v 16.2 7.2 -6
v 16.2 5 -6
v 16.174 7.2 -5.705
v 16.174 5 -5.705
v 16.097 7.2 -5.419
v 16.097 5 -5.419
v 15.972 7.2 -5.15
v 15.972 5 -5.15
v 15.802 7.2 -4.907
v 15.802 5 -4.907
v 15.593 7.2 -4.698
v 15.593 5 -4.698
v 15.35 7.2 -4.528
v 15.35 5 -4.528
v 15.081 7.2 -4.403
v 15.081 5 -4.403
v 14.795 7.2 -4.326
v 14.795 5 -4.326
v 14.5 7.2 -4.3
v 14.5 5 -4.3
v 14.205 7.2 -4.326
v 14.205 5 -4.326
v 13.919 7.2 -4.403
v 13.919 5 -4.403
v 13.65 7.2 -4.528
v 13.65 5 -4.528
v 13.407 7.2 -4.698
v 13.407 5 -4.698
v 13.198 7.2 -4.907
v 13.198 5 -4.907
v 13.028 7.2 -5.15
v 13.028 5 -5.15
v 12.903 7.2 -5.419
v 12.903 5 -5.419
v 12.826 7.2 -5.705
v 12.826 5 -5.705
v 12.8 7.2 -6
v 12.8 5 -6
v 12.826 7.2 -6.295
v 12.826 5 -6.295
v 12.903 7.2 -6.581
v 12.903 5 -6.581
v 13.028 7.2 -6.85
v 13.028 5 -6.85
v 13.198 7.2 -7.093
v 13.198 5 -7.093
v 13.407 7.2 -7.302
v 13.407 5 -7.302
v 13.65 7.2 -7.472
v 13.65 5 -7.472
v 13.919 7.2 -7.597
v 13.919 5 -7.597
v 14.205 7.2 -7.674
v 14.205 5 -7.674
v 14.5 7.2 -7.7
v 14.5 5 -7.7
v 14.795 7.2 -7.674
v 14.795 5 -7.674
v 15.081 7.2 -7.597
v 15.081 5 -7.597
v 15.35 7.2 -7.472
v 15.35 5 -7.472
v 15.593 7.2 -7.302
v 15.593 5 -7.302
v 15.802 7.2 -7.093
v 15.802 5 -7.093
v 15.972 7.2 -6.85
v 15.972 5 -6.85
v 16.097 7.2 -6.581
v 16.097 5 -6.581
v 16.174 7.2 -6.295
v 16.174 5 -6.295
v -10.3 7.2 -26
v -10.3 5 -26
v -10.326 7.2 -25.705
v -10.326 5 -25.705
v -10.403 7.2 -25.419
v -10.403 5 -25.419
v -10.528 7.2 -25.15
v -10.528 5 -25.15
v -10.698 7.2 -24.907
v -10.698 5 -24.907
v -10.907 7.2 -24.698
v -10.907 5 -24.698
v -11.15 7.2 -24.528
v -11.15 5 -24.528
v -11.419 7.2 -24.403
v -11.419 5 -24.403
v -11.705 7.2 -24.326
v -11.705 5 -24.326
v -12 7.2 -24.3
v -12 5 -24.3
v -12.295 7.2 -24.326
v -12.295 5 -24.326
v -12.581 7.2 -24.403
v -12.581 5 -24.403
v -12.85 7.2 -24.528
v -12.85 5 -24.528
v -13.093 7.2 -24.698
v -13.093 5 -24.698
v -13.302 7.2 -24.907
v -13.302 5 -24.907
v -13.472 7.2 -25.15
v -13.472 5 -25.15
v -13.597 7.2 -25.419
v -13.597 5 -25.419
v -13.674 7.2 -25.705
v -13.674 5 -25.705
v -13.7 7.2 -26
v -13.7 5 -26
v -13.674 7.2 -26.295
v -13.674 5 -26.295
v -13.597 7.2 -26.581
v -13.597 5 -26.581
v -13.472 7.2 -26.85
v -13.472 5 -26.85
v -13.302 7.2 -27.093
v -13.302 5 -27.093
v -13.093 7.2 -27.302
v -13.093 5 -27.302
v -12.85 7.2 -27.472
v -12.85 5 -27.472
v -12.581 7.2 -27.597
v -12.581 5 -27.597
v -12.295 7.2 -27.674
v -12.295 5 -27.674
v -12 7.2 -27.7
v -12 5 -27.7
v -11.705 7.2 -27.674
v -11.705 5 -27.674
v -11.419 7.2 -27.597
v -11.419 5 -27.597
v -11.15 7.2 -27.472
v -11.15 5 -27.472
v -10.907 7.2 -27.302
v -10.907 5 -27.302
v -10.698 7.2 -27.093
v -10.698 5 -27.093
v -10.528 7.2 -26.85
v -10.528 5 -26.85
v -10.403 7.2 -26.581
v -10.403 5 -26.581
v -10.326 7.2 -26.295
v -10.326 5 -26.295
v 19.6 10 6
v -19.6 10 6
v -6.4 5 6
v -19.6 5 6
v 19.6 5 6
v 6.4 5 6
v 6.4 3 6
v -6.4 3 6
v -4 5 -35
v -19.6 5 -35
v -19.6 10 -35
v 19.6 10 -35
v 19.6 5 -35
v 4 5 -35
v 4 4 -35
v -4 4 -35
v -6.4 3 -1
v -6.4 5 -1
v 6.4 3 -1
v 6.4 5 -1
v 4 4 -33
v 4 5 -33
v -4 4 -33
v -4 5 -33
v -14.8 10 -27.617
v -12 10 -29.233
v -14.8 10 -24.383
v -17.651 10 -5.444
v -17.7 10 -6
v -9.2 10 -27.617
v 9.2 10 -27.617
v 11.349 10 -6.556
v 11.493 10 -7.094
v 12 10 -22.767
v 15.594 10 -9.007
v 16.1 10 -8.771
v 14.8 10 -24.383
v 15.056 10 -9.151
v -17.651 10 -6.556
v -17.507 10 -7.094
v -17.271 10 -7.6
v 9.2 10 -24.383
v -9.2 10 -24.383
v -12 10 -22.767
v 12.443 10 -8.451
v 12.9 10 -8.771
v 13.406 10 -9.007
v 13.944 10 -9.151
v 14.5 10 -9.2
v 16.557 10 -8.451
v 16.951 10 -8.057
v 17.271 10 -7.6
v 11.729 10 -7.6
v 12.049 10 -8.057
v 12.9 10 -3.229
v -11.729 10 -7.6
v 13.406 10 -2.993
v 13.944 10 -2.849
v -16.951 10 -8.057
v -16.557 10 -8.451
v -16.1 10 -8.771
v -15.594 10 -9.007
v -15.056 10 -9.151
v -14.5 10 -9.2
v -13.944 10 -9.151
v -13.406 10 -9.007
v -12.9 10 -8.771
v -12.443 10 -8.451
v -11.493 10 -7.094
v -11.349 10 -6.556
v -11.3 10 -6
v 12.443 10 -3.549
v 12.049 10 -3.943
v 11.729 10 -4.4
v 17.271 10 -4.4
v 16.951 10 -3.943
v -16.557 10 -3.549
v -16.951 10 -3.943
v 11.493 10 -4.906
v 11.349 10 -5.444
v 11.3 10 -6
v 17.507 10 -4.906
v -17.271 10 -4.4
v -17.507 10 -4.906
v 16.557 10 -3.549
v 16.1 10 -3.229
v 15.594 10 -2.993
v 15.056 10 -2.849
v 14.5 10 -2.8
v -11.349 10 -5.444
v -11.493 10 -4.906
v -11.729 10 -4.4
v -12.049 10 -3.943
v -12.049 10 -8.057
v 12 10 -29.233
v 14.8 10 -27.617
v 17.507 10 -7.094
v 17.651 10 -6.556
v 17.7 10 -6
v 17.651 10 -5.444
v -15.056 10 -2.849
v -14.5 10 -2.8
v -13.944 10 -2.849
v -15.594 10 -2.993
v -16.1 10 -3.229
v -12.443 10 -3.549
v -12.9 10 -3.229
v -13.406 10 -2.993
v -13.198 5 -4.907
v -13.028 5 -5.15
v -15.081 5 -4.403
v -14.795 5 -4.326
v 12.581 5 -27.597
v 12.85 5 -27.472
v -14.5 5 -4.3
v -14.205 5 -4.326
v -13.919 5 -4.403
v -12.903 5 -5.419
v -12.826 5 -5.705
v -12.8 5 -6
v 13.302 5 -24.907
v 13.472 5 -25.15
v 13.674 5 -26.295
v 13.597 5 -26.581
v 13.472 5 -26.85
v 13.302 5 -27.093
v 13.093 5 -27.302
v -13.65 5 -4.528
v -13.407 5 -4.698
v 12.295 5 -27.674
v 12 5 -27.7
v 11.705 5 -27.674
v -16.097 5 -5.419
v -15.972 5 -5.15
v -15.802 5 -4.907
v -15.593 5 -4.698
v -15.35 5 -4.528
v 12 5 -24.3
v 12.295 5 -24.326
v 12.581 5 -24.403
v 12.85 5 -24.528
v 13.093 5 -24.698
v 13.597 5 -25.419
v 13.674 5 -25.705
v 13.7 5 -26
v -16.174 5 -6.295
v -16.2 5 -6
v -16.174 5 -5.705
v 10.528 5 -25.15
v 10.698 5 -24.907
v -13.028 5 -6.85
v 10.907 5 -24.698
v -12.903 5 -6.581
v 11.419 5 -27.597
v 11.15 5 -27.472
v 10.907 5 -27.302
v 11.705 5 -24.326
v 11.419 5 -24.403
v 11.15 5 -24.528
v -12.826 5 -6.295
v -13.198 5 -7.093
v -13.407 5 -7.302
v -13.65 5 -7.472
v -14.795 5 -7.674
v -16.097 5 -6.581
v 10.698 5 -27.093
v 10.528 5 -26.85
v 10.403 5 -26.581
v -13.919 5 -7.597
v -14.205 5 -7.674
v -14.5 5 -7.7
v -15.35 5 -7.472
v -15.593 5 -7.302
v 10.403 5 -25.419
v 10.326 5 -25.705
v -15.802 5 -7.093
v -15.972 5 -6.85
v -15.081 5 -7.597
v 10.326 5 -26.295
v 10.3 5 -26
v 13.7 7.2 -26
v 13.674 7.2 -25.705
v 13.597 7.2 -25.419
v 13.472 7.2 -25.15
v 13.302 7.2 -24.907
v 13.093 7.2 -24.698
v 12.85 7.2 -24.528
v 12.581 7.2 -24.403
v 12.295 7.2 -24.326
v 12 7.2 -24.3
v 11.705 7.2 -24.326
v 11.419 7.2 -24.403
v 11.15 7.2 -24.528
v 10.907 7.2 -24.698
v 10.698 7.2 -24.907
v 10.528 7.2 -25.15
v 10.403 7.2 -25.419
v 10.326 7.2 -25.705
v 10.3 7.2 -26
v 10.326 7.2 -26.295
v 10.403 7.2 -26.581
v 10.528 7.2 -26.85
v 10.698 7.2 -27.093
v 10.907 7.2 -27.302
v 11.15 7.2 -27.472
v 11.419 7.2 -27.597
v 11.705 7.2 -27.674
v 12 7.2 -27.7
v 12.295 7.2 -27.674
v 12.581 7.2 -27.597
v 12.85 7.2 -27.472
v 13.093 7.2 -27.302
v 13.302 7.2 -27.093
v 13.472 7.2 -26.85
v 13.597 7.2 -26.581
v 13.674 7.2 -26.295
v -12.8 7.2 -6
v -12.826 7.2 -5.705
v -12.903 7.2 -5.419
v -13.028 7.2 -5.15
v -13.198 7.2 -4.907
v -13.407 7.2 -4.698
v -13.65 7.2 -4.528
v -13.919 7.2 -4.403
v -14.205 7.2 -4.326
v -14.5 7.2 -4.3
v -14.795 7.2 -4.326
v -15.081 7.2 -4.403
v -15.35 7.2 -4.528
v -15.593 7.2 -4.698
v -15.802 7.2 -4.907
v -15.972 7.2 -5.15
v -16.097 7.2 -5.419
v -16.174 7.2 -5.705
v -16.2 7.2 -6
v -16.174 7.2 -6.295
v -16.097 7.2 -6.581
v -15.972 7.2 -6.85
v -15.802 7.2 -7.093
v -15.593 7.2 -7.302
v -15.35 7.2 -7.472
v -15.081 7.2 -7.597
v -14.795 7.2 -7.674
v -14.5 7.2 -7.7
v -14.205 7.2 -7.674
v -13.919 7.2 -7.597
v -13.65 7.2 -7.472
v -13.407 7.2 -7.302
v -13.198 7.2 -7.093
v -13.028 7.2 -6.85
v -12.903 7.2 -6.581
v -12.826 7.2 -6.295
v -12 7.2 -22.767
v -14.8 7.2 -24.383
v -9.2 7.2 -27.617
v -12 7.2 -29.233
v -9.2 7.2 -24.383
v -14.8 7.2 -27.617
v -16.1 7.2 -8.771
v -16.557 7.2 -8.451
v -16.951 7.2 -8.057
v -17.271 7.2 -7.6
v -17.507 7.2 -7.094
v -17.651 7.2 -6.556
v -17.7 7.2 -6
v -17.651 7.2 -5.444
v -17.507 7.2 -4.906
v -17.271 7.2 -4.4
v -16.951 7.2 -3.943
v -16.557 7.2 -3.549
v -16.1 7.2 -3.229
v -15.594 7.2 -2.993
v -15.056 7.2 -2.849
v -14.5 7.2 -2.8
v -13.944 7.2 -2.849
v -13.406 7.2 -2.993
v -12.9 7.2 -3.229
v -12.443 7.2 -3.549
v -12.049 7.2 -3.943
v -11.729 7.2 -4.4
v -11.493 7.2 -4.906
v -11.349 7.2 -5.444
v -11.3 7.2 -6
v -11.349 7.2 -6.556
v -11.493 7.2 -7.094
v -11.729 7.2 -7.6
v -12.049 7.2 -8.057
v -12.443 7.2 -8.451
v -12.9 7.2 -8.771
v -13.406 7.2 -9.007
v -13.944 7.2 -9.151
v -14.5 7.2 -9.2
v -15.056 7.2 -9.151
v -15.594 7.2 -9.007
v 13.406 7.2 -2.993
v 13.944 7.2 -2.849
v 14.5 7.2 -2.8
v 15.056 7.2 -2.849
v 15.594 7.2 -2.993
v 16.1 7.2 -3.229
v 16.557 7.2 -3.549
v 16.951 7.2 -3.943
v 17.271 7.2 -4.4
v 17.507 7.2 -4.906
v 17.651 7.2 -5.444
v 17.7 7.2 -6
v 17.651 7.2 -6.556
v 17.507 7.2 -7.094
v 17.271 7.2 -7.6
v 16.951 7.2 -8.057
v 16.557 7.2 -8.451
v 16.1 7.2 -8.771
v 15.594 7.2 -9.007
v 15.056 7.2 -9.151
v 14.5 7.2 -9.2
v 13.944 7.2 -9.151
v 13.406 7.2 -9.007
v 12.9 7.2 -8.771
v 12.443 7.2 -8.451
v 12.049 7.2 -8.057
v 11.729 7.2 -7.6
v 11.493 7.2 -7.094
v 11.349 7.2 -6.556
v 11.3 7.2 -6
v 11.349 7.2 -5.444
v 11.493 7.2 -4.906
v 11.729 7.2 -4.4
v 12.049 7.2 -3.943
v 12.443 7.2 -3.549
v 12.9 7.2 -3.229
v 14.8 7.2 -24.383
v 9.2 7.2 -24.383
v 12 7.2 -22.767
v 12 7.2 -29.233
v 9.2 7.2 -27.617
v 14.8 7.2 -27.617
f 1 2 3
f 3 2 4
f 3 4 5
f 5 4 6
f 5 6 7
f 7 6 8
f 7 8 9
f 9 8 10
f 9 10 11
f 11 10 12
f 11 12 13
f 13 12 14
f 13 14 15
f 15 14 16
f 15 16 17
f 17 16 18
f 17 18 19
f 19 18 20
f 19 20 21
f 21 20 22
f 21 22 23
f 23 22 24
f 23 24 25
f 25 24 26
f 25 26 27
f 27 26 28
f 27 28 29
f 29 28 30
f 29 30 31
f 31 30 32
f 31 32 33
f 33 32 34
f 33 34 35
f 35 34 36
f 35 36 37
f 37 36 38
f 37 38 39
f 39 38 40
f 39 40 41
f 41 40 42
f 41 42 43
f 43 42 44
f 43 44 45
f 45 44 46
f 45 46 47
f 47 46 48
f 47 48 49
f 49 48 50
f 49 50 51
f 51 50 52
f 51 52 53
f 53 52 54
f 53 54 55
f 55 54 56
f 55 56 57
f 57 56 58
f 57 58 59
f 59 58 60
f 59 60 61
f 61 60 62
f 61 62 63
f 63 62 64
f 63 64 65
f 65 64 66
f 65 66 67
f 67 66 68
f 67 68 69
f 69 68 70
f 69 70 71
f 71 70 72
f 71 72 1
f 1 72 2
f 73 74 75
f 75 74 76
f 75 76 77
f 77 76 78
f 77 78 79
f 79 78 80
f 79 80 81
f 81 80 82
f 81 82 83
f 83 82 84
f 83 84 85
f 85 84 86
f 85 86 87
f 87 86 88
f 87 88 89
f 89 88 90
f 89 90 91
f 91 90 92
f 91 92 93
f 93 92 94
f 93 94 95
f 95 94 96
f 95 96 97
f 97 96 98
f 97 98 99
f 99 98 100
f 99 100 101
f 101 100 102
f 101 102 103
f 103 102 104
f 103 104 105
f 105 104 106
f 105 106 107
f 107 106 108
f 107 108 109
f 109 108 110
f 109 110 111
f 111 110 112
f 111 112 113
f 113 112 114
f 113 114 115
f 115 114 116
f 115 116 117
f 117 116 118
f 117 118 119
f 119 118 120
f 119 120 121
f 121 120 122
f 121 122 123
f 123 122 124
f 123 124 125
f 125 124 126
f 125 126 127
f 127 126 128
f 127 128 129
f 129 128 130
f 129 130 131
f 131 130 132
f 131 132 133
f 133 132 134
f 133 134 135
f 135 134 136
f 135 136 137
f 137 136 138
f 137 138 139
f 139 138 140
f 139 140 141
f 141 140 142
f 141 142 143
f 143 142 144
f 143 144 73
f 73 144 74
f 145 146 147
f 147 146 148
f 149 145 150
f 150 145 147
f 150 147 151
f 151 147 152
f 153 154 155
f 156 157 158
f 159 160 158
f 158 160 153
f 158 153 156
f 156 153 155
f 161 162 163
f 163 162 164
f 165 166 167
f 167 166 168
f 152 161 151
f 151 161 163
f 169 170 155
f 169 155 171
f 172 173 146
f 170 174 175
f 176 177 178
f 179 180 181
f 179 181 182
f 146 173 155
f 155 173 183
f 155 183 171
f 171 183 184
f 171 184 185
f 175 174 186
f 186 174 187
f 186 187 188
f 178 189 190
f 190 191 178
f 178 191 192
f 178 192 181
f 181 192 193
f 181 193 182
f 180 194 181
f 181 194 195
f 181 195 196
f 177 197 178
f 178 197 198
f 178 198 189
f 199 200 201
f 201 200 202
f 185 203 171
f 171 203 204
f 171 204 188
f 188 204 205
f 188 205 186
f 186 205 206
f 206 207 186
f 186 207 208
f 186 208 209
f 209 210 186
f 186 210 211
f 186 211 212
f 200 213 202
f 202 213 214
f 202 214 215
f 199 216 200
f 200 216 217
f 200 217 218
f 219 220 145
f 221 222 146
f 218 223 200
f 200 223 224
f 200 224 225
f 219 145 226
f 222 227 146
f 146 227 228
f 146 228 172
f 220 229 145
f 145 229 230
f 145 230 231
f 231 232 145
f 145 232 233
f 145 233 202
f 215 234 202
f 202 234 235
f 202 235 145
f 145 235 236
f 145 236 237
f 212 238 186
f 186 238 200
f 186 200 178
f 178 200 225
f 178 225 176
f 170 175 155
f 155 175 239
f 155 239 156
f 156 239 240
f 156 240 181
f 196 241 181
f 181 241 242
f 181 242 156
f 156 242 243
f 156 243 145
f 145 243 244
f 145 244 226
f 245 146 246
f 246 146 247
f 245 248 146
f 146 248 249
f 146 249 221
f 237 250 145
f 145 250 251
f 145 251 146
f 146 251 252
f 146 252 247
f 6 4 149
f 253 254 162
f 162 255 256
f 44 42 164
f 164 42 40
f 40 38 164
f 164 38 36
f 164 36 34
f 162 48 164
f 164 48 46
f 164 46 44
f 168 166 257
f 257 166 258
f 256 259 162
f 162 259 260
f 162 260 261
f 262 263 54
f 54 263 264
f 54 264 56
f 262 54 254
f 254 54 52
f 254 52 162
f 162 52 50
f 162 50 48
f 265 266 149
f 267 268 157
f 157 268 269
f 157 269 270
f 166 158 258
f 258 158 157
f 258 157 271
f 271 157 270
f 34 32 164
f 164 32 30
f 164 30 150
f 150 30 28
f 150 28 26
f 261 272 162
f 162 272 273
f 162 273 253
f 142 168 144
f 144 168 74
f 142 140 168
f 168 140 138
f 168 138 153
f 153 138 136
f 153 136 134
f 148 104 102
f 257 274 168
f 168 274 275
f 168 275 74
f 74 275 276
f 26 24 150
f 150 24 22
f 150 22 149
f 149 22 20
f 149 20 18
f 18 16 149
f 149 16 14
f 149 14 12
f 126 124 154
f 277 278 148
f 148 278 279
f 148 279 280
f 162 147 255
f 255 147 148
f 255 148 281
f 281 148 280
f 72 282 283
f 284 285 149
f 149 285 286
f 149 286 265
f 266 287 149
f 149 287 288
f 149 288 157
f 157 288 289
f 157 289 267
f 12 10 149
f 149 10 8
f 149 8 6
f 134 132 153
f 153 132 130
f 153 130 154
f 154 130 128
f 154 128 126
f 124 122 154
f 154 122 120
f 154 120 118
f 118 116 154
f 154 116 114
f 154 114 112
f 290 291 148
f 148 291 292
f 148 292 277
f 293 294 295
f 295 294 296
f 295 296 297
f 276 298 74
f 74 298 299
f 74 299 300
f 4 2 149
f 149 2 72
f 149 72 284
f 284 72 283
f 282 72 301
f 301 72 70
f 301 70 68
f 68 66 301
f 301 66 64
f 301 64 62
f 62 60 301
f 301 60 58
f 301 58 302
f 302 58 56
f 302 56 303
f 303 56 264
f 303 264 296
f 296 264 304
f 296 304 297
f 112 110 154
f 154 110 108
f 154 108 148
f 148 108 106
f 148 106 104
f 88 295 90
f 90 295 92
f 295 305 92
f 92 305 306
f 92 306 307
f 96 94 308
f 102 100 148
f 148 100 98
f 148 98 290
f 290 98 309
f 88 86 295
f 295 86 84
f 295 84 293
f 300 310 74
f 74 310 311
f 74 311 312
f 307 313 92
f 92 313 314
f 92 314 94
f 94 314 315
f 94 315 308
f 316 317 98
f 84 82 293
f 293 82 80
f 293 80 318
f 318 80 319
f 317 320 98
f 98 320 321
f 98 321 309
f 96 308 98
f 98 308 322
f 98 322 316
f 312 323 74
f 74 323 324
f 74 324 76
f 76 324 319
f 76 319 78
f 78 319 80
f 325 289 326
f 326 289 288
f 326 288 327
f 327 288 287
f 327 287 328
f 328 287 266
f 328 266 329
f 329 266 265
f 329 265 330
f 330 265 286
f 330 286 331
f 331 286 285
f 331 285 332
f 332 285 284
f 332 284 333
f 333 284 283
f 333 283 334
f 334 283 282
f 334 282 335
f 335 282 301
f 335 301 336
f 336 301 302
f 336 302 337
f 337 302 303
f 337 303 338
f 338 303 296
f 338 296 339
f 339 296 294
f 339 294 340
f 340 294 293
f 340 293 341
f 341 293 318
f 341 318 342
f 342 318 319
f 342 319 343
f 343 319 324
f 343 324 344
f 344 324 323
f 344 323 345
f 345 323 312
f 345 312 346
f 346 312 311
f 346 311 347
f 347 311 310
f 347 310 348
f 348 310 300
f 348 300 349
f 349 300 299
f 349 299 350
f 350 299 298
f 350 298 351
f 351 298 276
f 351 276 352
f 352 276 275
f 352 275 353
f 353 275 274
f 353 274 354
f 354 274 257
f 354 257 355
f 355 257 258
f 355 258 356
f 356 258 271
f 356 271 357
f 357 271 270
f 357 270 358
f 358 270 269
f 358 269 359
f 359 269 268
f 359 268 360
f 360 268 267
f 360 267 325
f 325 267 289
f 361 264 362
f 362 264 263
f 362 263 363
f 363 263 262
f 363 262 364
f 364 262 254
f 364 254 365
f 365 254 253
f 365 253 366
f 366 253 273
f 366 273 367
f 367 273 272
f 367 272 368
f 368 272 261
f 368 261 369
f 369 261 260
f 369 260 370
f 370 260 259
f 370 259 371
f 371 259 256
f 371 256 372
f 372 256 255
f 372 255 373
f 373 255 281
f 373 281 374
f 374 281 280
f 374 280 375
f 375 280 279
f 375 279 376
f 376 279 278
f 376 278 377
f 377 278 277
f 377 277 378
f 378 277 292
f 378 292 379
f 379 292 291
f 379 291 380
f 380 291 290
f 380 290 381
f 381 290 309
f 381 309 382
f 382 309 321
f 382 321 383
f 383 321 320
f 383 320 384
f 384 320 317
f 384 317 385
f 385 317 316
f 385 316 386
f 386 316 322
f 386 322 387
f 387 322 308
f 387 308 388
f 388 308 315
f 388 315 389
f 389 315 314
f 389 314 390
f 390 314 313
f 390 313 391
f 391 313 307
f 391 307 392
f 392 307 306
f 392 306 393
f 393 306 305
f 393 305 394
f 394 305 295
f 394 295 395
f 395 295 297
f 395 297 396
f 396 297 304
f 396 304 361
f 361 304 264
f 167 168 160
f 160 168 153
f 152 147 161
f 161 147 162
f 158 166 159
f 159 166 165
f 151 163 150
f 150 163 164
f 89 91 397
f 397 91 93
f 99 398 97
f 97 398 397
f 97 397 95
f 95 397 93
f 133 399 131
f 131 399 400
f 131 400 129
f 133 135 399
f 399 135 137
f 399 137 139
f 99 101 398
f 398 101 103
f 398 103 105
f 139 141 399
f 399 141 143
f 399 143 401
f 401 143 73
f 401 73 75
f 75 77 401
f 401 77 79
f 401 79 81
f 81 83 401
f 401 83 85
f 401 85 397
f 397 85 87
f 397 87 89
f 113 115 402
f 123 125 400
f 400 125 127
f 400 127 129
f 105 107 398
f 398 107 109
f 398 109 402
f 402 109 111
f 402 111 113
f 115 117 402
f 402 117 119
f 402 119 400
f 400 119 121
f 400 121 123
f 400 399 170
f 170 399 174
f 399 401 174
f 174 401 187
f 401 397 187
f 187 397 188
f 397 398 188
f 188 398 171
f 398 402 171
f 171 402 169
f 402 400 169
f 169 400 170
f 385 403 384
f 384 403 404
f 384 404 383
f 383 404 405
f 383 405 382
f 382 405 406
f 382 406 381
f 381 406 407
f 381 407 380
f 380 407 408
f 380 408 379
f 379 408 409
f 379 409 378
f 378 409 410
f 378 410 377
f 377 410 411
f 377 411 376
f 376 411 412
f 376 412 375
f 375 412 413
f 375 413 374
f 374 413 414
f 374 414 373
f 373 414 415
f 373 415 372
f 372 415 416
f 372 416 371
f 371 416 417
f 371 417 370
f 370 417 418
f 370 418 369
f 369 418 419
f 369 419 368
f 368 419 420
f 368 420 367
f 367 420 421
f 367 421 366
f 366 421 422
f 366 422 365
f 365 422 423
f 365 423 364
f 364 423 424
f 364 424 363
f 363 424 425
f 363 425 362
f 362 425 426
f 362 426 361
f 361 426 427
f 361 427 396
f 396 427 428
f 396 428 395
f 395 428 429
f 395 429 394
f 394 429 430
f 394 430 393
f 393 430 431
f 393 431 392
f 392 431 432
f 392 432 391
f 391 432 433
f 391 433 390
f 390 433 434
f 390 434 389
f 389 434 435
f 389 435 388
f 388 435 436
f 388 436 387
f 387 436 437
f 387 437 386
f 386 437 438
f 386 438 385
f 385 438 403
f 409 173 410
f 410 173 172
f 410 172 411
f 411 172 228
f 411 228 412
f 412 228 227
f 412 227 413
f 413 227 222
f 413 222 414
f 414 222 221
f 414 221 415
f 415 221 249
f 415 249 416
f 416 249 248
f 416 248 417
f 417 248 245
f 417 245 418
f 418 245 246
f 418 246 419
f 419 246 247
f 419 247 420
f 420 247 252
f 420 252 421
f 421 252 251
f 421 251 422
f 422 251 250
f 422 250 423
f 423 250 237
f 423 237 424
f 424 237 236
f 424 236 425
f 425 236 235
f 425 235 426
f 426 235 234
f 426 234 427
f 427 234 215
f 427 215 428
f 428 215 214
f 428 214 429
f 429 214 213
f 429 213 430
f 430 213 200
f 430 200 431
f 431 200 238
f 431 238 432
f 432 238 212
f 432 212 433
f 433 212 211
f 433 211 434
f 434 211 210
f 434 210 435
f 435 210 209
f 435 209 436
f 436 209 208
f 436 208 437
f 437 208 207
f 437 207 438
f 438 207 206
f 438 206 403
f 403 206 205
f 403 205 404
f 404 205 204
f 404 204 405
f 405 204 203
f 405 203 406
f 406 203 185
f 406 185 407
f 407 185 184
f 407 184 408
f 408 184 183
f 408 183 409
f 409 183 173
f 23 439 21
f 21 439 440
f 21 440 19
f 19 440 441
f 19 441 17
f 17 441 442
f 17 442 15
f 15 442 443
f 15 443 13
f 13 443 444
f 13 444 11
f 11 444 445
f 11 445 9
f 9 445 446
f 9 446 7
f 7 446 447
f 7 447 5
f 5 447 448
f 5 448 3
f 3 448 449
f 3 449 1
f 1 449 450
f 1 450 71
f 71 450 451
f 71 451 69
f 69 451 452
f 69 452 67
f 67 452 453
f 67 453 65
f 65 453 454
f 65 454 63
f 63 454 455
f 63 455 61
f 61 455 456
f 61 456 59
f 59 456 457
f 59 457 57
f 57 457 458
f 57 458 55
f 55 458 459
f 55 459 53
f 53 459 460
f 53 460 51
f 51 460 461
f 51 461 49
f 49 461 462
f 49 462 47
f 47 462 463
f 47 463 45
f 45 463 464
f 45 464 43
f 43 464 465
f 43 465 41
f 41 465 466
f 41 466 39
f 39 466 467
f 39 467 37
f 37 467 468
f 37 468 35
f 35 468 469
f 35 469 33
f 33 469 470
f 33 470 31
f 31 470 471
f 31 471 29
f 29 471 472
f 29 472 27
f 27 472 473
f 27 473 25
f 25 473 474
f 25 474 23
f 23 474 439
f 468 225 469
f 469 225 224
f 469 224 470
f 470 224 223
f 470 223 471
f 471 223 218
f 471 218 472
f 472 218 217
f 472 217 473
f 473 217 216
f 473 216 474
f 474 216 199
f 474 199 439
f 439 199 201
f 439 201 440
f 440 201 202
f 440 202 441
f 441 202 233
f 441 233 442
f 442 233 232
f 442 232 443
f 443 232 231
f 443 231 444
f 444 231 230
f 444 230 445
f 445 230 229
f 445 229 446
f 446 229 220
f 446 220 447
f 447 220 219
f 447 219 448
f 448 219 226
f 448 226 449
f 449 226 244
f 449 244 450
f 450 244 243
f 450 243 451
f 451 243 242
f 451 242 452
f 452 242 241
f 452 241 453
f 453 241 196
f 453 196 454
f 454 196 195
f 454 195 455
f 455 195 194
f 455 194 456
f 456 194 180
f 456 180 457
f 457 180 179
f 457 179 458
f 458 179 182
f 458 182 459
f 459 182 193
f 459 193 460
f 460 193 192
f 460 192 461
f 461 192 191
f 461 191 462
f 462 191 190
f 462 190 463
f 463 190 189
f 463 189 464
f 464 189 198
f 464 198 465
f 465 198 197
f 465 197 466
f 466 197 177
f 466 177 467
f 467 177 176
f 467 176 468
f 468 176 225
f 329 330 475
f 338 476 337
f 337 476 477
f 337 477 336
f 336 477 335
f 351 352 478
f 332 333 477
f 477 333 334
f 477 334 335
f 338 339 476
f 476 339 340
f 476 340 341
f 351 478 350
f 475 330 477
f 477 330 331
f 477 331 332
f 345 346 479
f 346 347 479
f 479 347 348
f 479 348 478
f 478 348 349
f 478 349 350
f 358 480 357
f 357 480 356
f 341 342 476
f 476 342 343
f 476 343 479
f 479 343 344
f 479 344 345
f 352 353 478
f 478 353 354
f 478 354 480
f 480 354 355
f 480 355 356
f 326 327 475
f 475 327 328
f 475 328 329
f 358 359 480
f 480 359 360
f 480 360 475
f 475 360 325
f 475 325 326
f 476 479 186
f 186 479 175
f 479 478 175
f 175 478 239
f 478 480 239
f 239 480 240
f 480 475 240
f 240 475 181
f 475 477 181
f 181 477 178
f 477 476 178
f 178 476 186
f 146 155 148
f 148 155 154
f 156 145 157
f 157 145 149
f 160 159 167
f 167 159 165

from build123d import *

# Parameters (mm, degrees)
SKETCH_1_W          = 40
SKETCH_1_H          = 20
EXTRUDE_1_DEPTH     = 6
SKETCH_2_W          = 40
SKETCH_2_H          = 32.5
EXTRUDE_2_DEPTH     = 35
CUT_EXTRUDE_1_DEPTH = 13
CUT_EXTRUDE_2_DEPTH = 2
SKETCH_6_W          = 40
SKETCH_6_H          = 41
CUT_EXTRUDE_3_DEPTH = 5
SKETCH_8_R          = 1.7
CUT_EXTRUDE_4_DEPTH = 49.79805324
SKETCH_9_W          = 40
SKETCH_9_H          = 12.5
SKETCH_9_H_2        = 8
CUT_EXTRUDE_5_DEPTH = 41
CUT_EXTRUDE_6_DEPTH = 2
SKETCH_11_R         = 3.2
CUT_EXTRUDE_7_DEPTH = 2.8
SKETCH_12_W         = 0.4
SKETCH_12_H         = 41
CUT_EXTRUDE_8_DEPTH = 5
SKETCH_13_W         = 8
SKETCH_13_H         = 1
CUT_EXTRUDE_9_DEPTH = 2


with BuildPart() as part:
    # Эскиз1 → Бобышка-Вытянуть1 (new body)
    with BuildSketch(Plane.XY):
        Rectangle(SKETCH_1_W, SKETCH_1_H)
    extrude(amount=EXTRUDE_1_DEPTH)

    # Эскиз2 → Бобышка-Вытянуть2 (add)
    with BuildSketch(Plane(origin=(0, 0, 0), x_dir=(-1, 0, 0), z_dir=(0, 0, -1))):
        with Locations((0, 6.25)):
            Rectangle(SKETCH_2_W, SKETCH_2_H)
    extrude(amount=EXTRUDE_2_DEPTH)

    # Эскиз3 → Вырез-Вытянуть1 (cut)
    with BuildSketch(Plane.XZ.offset(10)):
        Polygon((-7, 6), (-7, -1), (-9, -1), (-9, -23), (-6.5, -26), (-6.5, -33), (-4.5, -33), (-4.5, -35), (4.5, -35), (4.5, -33), (6.5, -33), (6.5, -26), (9, -23), (9, -1), (7, -1), (7, 6), align=None)
    extrude(amount=-CUT_EXTRUDE_1_DEPTH, mode=Mode.SUBTRACT)

    # Эскиз5 → Вырез-Вытянуть2 (cut)
    with BuildSketch(Plane.XZ.offset(-3)):
        Polygon((-9, -1), (9, -1), (9, -23), (6.5, -26), (6.5, -33), (-6.5, -33), (-6.5, -26), (-9, -23), align=None)
    extrude(amount=-CUT_EXTRUDE_2_DEPTH, mode=Mode.SUBTRACT)

    # Эскиз6 → Вырез-Вытянуть3 (cut)
    with BuildSketch(Plane.XZ.offset(10)):
        with Locations((0, -14.5)):
            Rectangle(SKETCH_6_W, SKETCH_6_H)
    extrude(amount=-CUT_EXTRUDE_3_DEPTH, mode=Mode.SUBTRACT)

    # Эскиз8 → Вырез-Вытянуть4 (cut, through all)
    with BuildSketch(Plane.XZ.offset(5)):
        with Locations((12, -26)):
            Circle(SKETCH_8_R)
        with Locations((14.5, -6)):
            Circle(SKETCH_8_R)
        with Locations(Location((-12, -26, 0), (0, 0, 180))):
            Circle(SKETCH_8_R)
        with Locations(Location((-14.5, -6, 0), (0, 0, 180))):
            Circle(SKETCH_8_R)
    extrude(amount=-CUT_EXTRUDE_4_DEPTH, mode=Mode.SUBTRACT)

    # Эскиз9 → Вырез-Вытянуть5 (cut)
    with BuildSketch(Plane.XY.offset(6)):
        with Locations((0, 16.25)):
            Rectangle(SKETCH_9_W, SKETCH_9_H)
        with Locations((0, -1)):
            Rectangle(SKETCH_9_W, SKETCH_9_H_2)
    extrude(amount=-CUT_EXTRUDE_5_DEPTH, mode=Mode.SUBTRACT)

    # Эскиз10 → Вырез-Вытянуть6 (cut)
    with BuildSketch(Plane.XZ.offset(-3)):
        Polygon((-20, 6), (-6.4, 6), (-6.4, -1), (-4, -33), (-4, -35), (-20, -35), align=None)
    cut_extrude_6 = extrude(amount=-CUT_EXTRUDE_6_DEPTH, mode=Mode.SUBTRACT)

    # Зеркальное отражение1: Вырез-Вытянуть6 across plane
    add(cut_extrude_6.mirror(Plane(origin=(0, 0, 0), x_dir=(0, 0, 1), z_dir=(1, 0, 0))), mode=Mode.SUBTRACT)

    # Эскиз11 → Вырез-Вытянуть7 (cut)
    with BuildSketch(Plane(origin=(0, 10, 0), x_dir=(1, 0, 0), z_dir=(0, 1, 0))):
        with Locations(Location((14.5, 6, 0), (0, 0, 180))):
            Circle(SKETCH_11_R)
        with Locations((-14.5, 6)):
            Circle(SKETCH_11_R)
        Polygon((-12, 29.233161507), (-14.8, 27.616580754), (-14.8, 24.383419246), (-12, 22.766838493), (-9.2, 24.383419246), (-9.2, 27.616580754), align=None)
        Polygon((9.2, 27.616580754), (12, 29.233161507), (14.8, 27.616580754), (14.8, 24.383419246), (12, 22.766838493), (9.2, 24.383419246), align=None)
    extrude(amount=-CUT_EXTRUDE_7_DEPTH, mode=Mode.SUBTRACT)

    # Эскиз12 → Вырез-Вытянуть8 (cut)
    with BuildSketch(Plane(origin=(0, 10, 0), x_dir=(1, 0, 0), z_dir=(0, 1, 0))):
        with Locations((-19.8, 14.5)):
            Rectangle(SKETCH_12_W, SKETCH_12_H)
        with Locations((19.8, 14.5)):
            Rectangle(SKETCH_12_W, SKETCH_12_H)
    extrude(amount=-CUT_EXTRUDE_8_DEPTH, mode=Mode.SUBTRACT)

    # Эскиз13 → Вырез-Вытянуть9 (cut)
    with BuildSketch(Plane(origin=(0, 0, -35), x_dir=(-1, 0, 0), z_dir=(0, 0, -1))):
        with Locations((0, 3.5)):
            Rectangle(SKETCH_13_W, SKETCH_13_H)
    extrude(amount=-CUT_EXTRUDE_9_DEPTH, mode=Mode.SUBTRACT)


solid = part.part
